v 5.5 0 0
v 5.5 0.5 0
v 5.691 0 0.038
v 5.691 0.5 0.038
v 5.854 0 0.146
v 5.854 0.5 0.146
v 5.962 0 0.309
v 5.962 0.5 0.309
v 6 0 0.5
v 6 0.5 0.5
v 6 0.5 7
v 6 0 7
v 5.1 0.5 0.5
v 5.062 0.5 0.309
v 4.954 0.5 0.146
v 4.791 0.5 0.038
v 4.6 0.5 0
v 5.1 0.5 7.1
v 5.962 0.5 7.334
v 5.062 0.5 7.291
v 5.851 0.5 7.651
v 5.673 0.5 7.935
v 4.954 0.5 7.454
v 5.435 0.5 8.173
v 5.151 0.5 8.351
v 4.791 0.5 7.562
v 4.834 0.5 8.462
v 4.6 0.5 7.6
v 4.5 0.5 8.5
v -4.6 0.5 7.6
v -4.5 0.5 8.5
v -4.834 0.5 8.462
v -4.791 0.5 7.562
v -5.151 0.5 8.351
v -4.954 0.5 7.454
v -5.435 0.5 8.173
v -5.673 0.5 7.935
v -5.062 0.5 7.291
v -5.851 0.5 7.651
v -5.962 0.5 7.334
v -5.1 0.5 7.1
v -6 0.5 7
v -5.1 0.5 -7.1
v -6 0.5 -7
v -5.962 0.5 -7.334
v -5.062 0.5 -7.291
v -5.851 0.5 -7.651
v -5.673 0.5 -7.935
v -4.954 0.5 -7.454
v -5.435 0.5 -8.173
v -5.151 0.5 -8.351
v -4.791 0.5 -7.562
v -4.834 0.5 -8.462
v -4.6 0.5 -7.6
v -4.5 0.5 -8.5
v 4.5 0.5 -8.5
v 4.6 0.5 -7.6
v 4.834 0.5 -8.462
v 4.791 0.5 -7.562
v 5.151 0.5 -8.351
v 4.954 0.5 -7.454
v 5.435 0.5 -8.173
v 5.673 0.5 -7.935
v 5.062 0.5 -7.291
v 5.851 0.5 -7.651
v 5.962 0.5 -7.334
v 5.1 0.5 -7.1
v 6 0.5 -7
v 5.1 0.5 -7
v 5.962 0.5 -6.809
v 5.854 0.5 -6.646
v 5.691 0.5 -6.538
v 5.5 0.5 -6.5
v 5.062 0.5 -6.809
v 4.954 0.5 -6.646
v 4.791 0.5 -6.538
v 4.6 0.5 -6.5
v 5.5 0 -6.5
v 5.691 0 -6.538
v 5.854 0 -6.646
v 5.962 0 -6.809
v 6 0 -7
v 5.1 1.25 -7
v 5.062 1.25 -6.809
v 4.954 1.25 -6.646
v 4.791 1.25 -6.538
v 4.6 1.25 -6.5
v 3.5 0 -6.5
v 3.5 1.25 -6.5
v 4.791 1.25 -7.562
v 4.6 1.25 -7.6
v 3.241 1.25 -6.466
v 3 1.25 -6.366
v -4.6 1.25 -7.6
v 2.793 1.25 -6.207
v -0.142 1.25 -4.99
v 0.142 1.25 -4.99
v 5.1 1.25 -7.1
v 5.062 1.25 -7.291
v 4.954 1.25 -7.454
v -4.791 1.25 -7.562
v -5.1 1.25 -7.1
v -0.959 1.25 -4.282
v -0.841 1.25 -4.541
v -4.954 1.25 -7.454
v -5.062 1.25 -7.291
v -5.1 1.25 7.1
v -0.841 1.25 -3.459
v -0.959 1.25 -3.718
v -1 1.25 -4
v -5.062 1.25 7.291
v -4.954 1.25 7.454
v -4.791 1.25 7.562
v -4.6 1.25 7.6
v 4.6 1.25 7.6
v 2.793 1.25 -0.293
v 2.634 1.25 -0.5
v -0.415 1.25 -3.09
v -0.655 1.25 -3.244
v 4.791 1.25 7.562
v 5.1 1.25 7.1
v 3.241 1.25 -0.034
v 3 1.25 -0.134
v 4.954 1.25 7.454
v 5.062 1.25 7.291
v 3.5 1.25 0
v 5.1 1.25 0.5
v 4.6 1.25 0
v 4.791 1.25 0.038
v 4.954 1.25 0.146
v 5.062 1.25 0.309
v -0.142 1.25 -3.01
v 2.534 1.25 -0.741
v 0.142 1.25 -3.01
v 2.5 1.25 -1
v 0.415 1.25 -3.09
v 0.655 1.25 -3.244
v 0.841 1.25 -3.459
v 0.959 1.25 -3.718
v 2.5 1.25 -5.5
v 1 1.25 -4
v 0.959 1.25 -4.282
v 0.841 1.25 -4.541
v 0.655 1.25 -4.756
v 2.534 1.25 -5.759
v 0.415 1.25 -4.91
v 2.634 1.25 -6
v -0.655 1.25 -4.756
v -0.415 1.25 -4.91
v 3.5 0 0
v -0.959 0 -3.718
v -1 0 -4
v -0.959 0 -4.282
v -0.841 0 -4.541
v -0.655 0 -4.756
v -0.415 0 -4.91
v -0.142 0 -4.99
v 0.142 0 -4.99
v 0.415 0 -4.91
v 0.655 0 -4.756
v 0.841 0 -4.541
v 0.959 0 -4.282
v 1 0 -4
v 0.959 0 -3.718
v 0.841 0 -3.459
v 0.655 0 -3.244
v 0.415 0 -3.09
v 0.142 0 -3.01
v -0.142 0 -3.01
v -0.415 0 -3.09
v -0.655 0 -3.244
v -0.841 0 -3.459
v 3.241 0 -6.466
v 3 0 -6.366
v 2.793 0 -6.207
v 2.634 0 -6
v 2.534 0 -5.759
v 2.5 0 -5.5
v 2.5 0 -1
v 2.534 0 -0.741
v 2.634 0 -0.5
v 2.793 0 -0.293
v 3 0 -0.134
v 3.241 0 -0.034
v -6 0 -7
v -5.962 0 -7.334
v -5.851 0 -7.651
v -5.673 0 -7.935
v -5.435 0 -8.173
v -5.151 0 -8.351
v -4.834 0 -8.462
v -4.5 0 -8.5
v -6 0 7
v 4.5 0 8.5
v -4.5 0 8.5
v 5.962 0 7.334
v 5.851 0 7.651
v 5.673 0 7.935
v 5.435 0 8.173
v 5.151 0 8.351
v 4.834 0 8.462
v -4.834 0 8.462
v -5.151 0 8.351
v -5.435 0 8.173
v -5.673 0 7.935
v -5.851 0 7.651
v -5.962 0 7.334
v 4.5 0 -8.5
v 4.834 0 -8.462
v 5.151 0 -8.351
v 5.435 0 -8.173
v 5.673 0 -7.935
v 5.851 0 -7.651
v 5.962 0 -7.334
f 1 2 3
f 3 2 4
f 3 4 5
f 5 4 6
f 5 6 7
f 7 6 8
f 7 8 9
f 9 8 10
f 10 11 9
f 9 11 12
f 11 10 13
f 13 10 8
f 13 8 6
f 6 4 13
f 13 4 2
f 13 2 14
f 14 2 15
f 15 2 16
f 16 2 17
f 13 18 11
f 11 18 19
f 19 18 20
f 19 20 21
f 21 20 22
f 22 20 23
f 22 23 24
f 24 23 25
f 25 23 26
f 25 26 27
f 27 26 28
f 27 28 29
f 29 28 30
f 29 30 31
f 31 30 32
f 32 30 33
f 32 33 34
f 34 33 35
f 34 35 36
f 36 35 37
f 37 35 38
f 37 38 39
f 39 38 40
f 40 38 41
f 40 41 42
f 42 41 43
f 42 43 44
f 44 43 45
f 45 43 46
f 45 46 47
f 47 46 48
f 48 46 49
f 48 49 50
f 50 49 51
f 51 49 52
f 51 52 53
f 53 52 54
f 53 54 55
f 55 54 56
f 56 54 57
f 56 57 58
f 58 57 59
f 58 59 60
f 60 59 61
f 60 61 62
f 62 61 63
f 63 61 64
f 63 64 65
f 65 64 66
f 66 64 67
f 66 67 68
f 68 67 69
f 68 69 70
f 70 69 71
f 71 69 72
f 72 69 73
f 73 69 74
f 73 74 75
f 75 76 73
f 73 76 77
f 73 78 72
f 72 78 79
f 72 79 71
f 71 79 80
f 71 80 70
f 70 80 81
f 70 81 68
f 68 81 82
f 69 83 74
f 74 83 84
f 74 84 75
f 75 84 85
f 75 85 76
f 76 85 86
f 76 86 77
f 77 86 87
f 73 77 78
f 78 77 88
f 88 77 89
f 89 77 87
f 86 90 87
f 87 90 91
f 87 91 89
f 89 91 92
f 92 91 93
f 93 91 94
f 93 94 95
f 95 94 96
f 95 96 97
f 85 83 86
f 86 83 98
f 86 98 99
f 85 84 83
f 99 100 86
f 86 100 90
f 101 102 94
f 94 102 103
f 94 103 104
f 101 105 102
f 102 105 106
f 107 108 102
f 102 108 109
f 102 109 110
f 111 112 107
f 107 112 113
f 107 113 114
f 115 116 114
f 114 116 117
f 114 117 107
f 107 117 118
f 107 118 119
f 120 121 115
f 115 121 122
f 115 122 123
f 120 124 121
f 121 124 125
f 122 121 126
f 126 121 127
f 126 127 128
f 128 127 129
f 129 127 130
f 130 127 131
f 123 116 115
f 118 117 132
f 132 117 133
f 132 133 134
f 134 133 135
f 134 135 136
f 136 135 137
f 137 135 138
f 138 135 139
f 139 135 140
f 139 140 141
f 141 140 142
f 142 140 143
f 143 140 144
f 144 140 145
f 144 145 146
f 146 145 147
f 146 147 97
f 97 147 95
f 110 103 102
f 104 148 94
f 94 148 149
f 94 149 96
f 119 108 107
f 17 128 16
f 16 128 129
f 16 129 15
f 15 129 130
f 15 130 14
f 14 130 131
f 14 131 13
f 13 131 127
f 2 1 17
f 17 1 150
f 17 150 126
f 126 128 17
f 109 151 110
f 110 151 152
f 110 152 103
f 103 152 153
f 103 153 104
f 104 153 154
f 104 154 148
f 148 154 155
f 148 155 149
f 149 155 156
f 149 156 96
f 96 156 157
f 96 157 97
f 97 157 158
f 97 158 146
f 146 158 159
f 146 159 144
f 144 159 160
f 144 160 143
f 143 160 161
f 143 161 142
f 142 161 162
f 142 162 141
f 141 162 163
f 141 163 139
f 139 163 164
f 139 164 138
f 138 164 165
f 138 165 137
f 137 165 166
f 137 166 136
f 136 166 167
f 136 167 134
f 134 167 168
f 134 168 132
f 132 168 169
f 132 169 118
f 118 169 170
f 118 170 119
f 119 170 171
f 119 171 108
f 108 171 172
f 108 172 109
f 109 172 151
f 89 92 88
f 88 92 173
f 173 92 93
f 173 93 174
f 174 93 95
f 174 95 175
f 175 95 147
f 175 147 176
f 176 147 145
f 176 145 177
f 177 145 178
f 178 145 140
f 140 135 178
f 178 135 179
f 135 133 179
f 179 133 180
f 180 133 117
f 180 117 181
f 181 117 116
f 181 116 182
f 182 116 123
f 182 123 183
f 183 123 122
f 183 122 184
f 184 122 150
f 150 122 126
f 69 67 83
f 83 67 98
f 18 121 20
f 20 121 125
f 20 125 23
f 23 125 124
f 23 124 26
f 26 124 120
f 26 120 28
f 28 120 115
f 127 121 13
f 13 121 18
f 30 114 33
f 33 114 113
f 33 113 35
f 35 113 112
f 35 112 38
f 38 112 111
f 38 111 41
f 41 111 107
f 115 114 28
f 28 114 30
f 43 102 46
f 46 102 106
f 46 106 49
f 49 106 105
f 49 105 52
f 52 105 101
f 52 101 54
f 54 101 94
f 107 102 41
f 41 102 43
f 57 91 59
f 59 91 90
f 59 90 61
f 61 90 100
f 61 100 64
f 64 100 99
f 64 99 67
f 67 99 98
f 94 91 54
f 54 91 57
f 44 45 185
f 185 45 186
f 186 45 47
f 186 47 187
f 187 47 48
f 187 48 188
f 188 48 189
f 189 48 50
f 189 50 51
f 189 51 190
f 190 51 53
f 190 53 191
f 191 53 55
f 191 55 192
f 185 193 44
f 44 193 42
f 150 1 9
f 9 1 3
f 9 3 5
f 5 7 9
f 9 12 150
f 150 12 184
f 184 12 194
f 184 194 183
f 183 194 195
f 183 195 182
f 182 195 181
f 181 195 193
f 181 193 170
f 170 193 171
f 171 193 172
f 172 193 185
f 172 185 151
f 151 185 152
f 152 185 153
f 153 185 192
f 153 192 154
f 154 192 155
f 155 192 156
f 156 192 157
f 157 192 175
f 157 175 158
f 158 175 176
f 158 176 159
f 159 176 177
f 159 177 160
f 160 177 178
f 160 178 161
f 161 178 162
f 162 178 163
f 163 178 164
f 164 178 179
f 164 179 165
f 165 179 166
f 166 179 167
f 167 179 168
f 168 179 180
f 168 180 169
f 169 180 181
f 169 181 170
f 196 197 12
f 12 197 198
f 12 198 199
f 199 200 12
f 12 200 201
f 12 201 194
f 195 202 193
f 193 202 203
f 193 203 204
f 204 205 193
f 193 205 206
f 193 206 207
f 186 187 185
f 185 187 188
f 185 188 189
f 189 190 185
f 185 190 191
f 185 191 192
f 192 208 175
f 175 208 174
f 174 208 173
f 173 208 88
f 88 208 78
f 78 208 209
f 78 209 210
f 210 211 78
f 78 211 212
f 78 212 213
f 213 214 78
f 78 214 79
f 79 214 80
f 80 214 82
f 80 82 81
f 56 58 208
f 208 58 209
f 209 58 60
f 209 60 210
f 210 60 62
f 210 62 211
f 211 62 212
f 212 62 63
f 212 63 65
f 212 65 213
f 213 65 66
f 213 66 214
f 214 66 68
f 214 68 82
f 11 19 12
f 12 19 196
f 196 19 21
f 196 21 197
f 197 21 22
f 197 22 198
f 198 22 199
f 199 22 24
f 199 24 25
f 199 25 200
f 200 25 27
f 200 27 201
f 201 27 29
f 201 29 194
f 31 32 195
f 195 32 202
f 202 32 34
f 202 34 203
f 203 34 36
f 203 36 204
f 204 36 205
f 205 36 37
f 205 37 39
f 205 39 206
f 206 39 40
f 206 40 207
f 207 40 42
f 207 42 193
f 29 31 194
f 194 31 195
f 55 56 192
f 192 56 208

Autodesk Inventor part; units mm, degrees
ref_plane "YZ Plane" through (0, 0, 0) normal (1, 0, 0) x (0, 1, 0)
ref_plane "XZ Plane" through (0, 0, 0) normal (0, 1, 0) x (-1, 0, 0)
ref_plane "XY Plane" through (0, 0, 0) normal (0, 0, 1) x (1, 0, 0)
sketch "Sketch1" plane through (0, 0, 0) normal (0, 1, 0) x (-1, 0, 0)
  line L0 (-6, 8.5) -> (6, 8.5)
  line L1 (6, 8.5) -> (6, -8.5)
  line L2 (6, -8.5) -> (-6, -8.5)
  line L3 (-6, -8.5) -> (-6, 8.5)
  line L4 (-6, 8.5) -> (6, -8.5) construction
  line L5 (6, 8.5) -> (-6, -8.5) construction
  point P0 (0, 0)
  dimension "d0" = 12
  dimension "d1" = 17
extrude "Extrusion1" add sketch "Sketch1" along normal blind 0.5
sketch "Sketch2" plane through (0, 0.5, 0) normal (0, 1, 0) x (1, 0, 0)
  line L0 (5.1, -7.6) -> (-5.1, -7.6)
  line L1 (-5.1, -7.6) -> (-5.1, 7.6)
  line L2 (-5.1, 7.6) -> (5.1, 7.6)
  line L3 (5.1, 7.6) -> (5.1, -7.6)
  line L4 (5.1, -7.6) -> (-5.1, 7.6) construction
  line L5 (-5.1, -7.6) -> (5.1, 7.6) construction
  point P0 (0, 0)
  dimension "d4" = 15.2
  dimension "d5" = 10.2
extrude "Extrusion2" add sketch "Sketch2" along normal blind 0.75
fillet "Fillet1" radius 1.5 4 edges at (-6, 0.25, 8.5) (6, 0.25, 8.5) (6, 0.25, -8.5) (-6, 0.25, -8.5)
fillet "Fillet2" radius 0.5 4 edges at (5.1, 0.875, -7.6) (-5.1, 0.875, -7.6) (-5.1, 0.875, 7.6) (5.1, 0.875, 7.6)
sketch "Sketch3" plane through (0, 0, 0) normal (0, -1, 0) x (1, 0, 0)
  line L0 (5, 0) -> (3.5, 0)
  line L1 (2.5, -1) -> (2.5, -5.5)
  line L2 (3.5, -6.5) -> (5, -6.5)
  line L3 (5, -6.5) -> (5, 0)
  line L4 (5, 0) -> (8.5853, 0)
  line L5 (8.5853, 0) -> (8.5853, -6.5)
  line L6 (8.5853, -6.5) -> (5, -6.5)
  line L7 (5, -6.5) -> (5, 0)
  line L8 (4.5, -8.5) -> (-4.5, -8.5) projected
  line L9 (6, 7) -> (6, -7) projected
  circle A0 centre (0, -4) radius 1
  line L10 (-6, -7) -> (-6, 7) projected
  arc A1 (3.5, 0) -> (2.5, -1) centre (3.5, -1) ccw
  arc A2 (2.5, -5.5) -> (3.5, -6.5) centre (3.5, -5.5) ccw
  point P0 (0, 0)
  point P1 (2.5, -6.5)
  point P2 (6, -6.5)
  point P3 (6, 0)
  dimension "d10" = 6.5
  dimension "d11" = 2.5
  dimension "d12" = 2
  dimension "d13" = 3.5
  dimension "d14" = 6
  dimension "d15" = 4.5
  dimension "d16" = 2
  dimension "d17" = 1
extrude "Extrusion3" cut sketch "Sketch3" against normal up to surface (1.25 mm away) contours L3 L2 A2 L1 A1 L0 | L4 L9 L6 L3 | A0
fillet "Fillet3" radius 0.5 4 edges at (5.1, 0.875, 0) (5.1, 0.875, -6.5) (6, 0.25, -6.5) (6, 0.25, 0)
properties part number "proxima_cup"
